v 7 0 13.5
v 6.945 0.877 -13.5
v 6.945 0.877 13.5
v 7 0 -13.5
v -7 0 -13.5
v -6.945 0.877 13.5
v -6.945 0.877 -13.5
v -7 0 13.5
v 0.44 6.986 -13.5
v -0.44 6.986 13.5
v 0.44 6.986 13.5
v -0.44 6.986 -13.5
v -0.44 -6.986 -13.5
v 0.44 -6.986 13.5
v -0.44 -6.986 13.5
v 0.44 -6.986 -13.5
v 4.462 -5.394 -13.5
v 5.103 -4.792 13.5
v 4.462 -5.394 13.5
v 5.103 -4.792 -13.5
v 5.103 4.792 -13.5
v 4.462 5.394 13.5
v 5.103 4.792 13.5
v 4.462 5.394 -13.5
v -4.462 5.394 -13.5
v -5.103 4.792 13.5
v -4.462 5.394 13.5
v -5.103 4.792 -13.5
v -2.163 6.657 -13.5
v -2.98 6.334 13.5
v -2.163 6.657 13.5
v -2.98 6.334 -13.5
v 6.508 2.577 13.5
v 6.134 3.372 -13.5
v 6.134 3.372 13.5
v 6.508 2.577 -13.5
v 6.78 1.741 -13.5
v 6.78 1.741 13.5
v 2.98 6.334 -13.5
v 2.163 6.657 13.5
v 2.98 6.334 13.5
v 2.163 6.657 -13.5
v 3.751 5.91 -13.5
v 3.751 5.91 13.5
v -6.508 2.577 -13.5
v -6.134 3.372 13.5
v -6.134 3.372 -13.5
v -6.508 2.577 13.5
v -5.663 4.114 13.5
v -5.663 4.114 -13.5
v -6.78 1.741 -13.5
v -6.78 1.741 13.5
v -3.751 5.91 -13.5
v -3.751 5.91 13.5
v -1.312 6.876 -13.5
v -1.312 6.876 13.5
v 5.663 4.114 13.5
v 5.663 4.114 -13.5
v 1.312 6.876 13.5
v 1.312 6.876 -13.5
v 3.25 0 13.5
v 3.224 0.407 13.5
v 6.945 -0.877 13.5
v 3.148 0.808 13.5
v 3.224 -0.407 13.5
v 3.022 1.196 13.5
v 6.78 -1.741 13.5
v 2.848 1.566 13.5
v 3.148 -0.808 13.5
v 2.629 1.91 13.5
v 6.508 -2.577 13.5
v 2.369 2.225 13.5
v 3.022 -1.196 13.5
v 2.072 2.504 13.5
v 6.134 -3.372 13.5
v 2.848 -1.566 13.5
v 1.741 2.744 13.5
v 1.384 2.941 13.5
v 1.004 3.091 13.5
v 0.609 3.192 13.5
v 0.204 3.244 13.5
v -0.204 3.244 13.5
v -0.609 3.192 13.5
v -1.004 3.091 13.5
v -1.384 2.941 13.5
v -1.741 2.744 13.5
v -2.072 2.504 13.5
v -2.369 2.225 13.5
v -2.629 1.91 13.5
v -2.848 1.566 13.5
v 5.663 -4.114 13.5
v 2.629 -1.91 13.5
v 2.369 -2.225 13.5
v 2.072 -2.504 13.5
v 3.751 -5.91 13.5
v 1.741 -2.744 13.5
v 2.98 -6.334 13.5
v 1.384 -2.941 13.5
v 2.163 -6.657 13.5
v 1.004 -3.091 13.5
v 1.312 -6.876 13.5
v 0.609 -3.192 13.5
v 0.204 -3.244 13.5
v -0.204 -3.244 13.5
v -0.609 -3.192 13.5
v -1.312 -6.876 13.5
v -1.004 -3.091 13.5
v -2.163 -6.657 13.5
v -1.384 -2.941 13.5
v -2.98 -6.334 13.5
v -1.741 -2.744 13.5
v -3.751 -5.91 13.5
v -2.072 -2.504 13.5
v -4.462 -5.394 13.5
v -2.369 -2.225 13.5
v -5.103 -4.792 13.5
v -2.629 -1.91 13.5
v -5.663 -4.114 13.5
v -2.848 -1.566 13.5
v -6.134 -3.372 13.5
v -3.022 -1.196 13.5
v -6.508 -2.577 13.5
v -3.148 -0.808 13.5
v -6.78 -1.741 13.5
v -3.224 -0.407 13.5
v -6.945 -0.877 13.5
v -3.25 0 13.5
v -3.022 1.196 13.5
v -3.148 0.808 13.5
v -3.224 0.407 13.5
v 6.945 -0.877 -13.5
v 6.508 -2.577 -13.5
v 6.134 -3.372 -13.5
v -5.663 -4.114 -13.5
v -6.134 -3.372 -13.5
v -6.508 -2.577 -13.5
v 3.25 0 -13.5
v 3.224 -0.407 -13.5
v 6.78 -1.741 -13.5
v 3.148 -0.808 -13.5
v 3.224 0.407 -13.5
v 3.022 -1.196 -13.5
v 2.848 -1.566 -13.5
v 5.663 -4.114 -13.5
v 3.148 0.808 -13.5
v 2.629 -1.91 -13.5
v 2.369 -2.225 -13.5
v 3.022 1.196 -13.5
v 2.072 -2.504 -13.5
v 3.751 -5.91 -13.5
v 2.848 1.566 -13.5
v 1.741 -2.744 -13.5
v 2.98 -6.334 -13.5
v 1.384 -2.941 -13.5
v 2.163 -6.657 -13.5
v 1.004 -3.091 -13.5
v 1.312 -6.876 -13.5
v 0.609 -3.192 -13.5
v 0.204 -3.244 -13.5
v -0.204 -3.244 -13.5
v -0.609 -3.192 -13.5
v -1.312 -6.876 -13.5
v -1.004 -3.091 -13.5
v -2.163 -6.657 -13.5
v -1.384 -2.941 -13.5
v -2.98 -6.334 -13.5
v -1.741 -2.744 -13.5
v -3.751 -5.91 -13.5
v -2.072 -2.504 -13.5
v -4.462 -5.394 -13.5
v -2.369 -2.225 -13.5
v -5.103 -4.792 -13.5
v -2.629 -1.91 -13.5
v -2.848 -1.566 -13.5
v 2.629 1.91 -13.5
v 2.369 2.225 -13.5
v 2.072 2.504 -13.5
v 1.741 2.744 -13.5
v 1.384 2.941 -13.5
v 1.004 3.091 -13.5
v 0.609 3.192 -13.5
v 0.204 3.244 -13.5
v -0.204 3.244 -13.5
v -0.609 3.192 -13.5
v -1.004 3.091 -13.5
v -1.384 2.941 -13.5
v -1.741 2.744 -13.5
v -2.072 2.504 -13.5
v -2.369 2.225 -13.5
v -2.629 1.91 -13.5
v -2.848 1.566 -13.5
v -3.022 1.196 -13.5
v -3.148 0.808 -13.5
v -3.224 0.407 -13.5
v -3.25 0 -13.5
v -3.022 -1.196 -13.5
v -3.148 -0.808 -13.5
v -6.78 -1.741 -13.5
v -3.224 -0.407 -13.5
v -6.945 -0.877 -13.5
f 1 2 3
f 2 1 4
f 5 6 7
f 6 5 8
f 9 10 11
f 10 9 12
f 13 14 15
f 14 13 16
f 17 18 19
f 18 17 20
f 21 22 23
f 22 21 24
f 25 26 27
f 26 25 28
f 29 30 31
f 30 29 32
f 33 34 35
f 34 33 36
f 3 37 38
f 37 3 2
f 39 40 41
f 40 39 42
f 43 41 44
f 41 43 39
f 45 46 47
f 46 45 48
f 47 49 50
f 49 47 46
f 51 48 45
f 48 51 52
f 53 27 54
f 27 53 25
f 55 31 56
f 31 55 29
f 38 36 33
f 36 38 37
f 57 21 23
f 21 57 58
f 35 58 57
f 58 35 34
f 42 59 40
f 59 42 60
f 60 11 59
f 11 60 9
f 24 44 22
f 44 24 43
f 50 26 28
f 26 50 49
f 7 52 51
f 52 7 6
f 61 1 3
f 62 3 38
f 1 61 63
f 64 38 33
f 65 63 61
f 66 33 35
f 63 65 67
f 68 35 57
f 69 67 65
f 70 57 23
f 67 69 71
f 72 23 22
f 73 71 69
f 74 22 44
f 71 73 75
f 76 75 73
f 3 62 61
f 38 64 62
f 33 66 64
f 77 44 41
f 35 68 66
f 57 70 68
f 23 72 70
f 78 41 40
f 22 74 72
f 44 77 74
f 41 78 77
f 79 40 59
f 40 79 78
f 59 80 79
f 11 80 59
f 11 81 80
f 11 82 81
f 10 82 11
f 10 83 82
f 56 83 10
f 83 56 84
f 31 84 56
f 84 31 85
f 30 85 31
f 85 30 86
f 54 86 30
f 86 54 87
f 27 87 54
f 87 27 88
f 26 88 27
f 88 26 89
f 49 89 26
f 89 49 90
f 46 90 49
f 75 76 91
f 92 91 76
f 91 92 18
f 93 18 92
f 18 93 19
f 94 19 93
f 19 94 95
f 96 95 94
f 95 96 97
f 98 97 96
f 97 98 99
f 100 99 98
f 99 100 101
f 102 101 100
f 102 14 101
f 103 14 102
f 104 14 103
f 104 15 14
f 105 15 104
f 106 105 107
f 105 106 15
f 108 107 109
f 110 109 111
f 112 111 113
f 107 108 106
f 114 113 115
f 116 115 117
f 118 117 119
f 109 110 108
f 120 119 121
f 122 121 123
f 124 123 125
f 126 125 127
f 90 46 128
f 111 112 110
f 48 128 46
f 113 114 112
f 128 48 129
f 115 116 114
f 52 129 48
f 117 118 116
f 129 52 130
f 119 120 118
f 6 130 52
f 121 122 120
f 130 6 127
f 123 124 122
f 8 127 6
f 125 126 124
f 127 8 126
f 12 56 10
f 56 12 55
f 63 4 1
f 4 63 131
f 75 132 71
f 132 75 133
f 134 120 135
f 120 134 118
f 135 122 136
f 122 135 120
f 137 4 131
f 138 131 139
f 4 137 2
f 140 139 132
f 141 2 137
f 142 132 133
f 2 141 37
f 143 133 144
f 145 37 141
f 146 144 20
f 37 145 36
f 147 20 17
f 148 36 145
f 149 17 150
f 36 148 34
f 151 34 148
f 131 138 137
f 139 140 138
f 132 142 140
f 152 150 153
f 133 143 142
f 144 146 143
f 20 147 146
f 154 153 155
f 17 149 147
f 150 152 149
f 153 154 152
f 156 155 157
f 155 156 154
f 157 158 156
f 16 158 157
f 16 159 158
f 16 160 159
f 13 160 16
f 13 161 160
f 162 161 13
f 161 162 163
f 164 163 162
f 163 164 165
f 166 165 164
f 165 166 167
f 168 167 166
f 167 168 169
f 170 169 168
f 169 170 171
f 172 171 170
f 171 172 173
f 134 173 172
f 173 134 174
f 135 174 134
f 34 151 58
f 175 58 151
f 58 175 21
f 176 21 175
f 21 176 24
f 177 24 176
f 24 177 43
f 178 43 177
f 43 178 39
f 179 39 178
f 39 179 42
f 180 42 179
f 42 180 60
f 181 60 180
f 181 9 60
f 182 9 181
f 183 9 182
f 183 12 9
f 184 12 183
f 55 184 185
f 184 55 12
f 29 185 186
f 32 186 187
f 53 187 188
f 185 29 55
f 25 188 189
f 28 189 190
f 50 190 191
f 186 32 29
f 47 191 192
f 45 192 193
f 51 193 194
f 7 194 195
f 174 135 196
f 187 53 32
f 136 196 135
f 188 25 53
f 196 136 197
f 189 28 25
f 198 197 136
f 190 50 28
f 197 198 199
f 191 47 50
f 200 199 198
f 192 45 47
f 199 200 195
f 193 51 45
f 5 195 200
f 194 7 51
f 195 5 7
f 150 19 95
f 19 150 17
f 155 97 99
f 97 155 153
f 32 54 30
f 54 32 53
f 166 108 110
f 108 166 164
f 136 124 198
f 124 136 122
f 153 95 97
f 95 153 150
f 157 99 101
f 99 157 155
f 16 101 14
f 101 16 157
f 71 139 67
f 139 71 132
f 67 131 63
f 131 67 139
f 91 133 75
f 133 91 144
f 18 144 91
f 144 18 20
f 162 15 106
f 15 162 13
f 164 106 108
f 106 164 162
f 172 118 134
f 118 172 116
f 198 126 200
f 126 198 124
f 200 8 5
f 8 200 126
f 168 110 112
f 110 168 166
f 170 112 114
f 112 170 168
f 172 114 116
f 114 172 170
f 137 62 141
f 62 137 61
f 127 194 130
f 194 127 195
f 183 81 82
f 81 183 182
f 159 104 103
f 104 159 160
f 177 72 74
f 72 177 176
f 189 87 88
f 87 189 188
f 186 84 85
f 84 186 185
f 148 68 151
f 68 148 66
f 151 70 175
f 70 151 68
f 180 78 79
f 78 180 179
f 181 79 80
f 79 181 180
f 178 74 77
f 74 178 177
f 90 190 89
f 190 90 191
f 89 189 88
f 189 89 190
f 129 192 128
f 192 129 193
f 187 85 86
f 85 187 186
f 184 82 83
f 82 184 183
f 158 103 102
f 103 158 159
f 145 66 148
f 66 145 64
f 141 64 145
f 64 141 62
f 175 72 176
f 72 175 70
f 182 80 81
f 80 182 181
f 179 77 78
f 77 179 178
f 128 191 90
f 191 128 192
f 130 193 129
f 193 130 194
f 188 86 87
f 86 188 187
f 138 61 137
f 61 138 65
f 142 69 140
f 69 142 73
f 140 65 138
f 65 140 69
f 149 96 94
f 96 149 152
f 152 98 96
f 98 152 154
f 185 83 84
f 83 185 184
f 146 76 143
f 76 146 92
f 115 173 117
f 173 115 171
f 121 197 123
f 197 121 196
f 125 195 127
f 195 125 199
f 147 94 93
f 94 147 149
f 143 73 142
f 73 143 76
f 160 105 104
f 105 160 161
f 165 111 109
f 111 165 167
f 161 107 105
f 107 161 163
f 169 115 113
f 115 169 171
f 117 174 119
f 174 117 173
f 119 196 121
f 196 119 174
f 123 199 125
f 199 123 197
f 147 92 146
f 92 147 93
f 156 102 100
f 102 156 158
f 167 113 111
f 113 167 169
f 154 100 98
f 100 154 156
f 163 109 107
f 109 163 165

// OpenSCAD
$fn = 50;


difference() {
	union() {
		translate(v = [0, 0, -13.5000000000]) {
			cylinder(h = 27, r = 7.0000000000);
		}
	}
	union() {
		translate(v = [0, 0, -100.0000000000]) {
			cylinder(h = 200, r = 3.2500000000);
		}
	}
}
